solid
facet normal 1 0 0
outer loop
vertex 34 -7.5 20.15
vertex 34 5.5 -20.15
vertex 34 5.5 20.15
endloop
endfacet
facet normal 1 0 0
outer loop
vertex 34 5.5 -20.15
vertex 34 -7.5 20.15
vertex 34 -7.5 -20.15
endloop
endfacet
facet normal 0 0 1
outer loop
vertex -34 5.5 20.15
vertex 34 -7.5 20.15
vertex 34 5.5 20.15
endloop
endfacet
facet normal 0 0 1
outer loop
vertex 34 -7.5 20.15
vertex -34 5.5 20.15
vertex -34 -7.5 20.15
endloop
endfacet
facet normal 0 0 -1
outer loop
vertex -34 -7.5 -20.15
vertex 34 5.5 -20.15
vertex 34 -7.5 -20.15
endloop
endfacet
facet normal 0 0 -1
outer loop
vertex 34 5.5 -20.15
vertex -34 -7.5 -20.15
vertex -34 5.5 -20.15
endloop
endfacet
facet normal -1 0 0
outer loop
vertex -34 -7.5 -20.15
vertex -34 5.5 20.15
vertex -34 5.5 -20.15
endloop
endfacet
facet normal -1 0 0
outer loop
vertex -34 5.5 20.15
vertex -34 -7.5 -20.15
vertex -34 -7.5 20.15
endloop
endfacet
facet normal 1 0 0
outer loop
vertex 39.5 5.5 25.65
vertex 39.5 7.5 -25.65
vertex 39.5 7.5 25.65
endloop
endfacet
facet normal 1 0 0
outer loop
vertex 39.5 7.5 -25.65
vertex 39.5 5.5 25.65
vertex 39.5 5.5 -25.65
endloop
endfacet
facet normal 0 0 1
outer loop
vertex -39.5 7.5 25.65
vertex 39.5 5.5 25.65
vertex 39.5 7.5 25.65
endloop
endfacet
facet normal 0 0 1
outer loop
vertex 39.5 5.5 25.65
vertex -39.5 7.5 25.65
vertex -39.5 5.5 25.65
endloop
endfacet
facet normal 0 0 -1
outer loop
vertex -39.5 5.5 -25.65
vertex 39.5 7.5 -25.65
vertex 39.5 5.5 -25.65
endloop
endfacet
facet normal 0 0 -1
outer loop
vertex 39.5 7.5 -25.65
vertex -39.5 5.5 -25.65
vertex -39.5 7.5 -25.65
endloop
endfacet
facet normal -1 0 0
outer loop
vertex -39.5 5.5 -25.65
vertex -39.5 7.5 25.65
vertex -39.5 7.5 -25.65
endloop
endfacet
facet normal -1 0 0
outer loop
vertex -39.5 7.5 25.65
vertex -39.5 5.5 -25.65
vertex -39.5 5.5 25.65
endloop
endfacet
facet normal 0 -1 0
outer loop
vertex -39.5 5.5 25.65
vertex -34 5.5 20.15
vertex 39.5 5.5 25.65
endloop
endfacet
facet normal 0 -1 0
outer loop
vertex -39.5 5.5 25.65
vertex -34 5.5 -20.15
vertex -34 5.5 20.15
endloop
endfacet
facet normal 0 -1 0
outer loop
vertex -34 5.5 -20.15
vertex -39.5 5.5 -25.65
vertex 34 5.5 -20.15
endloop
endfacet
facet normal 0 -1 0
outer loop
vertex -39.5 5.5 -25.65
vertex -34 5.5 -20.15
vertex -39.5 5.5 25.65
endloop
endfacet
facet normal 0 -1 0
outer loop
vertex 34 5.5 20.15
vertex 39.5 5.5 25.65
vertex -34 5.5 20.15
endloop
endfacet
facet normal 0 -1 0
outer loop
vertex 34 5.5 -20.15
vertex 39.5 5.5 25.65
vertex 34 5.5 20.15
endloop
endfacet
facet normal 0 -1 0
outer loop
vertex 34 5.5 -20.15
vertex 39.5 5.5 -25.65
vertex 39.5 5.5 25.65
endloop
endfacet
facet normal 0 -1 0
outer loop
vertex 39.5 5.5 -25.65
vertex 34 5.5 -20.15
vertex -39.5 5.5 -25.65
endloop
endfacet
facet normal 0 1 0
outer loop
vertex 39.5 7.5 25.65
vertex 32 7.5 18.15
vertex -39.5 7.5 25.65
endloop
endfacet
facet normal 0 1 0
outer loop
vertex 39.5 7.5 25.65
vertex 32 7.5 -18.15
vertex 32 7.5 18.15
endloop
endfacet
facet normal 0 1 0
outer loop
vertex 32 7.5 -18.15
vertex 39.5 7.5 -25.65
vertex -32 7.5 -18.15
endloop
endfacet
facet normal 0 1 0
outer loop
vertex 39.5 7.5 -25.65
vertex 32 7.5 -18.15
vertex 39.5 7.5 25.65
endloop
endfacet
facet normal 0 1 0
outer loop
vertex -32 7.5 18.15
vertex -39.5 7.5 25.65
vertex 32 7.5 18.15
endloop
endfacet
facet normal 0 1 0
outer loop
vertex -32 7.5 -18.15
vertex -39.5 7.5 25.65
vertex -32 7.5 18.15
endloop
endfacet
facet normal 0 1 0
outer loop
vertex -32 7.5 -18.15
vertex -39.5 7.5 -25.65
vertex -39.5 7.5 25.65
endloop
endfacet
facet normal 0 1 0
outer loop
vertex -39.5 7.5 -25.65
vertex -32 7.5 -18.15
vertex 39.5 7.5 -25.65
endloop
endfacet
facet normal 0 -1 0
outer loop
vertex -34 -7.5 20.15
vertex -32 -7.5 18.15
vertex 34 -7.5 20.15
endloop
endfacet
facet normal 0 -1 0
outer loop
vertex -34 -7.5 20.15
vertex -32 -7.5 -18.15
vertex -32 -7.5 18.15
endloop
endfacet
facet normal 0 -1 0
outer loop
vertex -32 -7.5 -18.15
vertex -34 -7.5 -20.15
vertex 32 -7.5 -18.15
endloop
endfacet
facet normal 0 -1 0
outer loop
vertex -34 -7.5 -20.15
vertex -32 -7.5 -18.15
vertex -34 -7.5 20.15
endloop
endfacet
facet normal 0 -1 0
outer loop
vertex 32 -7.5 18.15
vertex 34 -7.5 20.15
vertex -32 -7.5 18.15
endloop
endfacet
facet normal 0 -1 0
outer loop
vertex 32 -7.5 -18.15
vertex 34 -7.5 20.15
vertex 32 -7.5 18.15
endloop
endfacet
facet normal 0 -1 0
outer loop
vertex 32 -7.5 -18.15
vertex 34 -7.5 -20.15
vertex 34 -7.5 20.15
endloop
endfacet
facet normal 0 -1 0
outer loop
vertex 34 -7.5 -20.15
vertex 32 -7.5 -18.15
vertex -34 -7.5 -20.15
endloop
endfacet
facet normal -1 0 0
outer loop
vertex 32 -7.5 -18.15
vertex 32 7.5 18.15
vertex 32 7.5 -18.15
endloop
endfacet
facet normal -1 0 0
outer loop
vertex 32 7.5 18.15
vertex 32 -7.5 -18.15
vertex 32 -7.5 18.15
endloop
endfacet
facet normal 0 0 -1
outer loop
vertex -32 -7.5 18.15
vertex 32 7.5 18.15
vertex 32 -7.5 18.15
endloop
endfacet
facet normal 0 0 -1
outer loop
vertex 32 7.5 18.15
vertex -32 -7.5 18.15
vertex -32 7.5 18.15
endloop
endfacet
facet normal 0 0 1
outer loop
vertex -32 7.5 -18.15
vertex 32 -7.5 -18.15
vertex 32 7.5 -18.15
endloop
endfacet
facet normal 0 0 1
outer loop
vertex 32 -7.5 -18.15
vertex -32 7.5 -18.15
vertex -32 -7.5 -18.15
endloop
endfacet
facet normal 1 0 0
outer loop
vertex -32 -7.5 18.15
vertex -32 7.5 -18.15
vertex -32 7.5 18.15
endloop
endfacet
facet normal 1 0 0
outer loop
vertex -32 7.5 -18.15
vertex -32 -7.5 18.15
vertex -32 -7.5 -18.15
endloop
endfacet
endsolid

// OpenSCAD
innerwidth = 64;
innerheight = 36.3;
depth = 15;
outerwidth = innerwidth + 15;
outerheight = innerheight + 15;

difference() {
    intersection() {
        cube(size = [outerwidth, depth, outerheight], center = true);
        translate([0, 0, 0])
        union() {
        cube(size = [innerwidth + 4, depth + 4, innerheight + 4], center = true);
        translate([0, depth/2, 0])
        cube(size = [outerwidth, 4, outerheight], center = true);
        }
    }
    cube(size = [innerwidth, depth, innerheight], center = true);
}
